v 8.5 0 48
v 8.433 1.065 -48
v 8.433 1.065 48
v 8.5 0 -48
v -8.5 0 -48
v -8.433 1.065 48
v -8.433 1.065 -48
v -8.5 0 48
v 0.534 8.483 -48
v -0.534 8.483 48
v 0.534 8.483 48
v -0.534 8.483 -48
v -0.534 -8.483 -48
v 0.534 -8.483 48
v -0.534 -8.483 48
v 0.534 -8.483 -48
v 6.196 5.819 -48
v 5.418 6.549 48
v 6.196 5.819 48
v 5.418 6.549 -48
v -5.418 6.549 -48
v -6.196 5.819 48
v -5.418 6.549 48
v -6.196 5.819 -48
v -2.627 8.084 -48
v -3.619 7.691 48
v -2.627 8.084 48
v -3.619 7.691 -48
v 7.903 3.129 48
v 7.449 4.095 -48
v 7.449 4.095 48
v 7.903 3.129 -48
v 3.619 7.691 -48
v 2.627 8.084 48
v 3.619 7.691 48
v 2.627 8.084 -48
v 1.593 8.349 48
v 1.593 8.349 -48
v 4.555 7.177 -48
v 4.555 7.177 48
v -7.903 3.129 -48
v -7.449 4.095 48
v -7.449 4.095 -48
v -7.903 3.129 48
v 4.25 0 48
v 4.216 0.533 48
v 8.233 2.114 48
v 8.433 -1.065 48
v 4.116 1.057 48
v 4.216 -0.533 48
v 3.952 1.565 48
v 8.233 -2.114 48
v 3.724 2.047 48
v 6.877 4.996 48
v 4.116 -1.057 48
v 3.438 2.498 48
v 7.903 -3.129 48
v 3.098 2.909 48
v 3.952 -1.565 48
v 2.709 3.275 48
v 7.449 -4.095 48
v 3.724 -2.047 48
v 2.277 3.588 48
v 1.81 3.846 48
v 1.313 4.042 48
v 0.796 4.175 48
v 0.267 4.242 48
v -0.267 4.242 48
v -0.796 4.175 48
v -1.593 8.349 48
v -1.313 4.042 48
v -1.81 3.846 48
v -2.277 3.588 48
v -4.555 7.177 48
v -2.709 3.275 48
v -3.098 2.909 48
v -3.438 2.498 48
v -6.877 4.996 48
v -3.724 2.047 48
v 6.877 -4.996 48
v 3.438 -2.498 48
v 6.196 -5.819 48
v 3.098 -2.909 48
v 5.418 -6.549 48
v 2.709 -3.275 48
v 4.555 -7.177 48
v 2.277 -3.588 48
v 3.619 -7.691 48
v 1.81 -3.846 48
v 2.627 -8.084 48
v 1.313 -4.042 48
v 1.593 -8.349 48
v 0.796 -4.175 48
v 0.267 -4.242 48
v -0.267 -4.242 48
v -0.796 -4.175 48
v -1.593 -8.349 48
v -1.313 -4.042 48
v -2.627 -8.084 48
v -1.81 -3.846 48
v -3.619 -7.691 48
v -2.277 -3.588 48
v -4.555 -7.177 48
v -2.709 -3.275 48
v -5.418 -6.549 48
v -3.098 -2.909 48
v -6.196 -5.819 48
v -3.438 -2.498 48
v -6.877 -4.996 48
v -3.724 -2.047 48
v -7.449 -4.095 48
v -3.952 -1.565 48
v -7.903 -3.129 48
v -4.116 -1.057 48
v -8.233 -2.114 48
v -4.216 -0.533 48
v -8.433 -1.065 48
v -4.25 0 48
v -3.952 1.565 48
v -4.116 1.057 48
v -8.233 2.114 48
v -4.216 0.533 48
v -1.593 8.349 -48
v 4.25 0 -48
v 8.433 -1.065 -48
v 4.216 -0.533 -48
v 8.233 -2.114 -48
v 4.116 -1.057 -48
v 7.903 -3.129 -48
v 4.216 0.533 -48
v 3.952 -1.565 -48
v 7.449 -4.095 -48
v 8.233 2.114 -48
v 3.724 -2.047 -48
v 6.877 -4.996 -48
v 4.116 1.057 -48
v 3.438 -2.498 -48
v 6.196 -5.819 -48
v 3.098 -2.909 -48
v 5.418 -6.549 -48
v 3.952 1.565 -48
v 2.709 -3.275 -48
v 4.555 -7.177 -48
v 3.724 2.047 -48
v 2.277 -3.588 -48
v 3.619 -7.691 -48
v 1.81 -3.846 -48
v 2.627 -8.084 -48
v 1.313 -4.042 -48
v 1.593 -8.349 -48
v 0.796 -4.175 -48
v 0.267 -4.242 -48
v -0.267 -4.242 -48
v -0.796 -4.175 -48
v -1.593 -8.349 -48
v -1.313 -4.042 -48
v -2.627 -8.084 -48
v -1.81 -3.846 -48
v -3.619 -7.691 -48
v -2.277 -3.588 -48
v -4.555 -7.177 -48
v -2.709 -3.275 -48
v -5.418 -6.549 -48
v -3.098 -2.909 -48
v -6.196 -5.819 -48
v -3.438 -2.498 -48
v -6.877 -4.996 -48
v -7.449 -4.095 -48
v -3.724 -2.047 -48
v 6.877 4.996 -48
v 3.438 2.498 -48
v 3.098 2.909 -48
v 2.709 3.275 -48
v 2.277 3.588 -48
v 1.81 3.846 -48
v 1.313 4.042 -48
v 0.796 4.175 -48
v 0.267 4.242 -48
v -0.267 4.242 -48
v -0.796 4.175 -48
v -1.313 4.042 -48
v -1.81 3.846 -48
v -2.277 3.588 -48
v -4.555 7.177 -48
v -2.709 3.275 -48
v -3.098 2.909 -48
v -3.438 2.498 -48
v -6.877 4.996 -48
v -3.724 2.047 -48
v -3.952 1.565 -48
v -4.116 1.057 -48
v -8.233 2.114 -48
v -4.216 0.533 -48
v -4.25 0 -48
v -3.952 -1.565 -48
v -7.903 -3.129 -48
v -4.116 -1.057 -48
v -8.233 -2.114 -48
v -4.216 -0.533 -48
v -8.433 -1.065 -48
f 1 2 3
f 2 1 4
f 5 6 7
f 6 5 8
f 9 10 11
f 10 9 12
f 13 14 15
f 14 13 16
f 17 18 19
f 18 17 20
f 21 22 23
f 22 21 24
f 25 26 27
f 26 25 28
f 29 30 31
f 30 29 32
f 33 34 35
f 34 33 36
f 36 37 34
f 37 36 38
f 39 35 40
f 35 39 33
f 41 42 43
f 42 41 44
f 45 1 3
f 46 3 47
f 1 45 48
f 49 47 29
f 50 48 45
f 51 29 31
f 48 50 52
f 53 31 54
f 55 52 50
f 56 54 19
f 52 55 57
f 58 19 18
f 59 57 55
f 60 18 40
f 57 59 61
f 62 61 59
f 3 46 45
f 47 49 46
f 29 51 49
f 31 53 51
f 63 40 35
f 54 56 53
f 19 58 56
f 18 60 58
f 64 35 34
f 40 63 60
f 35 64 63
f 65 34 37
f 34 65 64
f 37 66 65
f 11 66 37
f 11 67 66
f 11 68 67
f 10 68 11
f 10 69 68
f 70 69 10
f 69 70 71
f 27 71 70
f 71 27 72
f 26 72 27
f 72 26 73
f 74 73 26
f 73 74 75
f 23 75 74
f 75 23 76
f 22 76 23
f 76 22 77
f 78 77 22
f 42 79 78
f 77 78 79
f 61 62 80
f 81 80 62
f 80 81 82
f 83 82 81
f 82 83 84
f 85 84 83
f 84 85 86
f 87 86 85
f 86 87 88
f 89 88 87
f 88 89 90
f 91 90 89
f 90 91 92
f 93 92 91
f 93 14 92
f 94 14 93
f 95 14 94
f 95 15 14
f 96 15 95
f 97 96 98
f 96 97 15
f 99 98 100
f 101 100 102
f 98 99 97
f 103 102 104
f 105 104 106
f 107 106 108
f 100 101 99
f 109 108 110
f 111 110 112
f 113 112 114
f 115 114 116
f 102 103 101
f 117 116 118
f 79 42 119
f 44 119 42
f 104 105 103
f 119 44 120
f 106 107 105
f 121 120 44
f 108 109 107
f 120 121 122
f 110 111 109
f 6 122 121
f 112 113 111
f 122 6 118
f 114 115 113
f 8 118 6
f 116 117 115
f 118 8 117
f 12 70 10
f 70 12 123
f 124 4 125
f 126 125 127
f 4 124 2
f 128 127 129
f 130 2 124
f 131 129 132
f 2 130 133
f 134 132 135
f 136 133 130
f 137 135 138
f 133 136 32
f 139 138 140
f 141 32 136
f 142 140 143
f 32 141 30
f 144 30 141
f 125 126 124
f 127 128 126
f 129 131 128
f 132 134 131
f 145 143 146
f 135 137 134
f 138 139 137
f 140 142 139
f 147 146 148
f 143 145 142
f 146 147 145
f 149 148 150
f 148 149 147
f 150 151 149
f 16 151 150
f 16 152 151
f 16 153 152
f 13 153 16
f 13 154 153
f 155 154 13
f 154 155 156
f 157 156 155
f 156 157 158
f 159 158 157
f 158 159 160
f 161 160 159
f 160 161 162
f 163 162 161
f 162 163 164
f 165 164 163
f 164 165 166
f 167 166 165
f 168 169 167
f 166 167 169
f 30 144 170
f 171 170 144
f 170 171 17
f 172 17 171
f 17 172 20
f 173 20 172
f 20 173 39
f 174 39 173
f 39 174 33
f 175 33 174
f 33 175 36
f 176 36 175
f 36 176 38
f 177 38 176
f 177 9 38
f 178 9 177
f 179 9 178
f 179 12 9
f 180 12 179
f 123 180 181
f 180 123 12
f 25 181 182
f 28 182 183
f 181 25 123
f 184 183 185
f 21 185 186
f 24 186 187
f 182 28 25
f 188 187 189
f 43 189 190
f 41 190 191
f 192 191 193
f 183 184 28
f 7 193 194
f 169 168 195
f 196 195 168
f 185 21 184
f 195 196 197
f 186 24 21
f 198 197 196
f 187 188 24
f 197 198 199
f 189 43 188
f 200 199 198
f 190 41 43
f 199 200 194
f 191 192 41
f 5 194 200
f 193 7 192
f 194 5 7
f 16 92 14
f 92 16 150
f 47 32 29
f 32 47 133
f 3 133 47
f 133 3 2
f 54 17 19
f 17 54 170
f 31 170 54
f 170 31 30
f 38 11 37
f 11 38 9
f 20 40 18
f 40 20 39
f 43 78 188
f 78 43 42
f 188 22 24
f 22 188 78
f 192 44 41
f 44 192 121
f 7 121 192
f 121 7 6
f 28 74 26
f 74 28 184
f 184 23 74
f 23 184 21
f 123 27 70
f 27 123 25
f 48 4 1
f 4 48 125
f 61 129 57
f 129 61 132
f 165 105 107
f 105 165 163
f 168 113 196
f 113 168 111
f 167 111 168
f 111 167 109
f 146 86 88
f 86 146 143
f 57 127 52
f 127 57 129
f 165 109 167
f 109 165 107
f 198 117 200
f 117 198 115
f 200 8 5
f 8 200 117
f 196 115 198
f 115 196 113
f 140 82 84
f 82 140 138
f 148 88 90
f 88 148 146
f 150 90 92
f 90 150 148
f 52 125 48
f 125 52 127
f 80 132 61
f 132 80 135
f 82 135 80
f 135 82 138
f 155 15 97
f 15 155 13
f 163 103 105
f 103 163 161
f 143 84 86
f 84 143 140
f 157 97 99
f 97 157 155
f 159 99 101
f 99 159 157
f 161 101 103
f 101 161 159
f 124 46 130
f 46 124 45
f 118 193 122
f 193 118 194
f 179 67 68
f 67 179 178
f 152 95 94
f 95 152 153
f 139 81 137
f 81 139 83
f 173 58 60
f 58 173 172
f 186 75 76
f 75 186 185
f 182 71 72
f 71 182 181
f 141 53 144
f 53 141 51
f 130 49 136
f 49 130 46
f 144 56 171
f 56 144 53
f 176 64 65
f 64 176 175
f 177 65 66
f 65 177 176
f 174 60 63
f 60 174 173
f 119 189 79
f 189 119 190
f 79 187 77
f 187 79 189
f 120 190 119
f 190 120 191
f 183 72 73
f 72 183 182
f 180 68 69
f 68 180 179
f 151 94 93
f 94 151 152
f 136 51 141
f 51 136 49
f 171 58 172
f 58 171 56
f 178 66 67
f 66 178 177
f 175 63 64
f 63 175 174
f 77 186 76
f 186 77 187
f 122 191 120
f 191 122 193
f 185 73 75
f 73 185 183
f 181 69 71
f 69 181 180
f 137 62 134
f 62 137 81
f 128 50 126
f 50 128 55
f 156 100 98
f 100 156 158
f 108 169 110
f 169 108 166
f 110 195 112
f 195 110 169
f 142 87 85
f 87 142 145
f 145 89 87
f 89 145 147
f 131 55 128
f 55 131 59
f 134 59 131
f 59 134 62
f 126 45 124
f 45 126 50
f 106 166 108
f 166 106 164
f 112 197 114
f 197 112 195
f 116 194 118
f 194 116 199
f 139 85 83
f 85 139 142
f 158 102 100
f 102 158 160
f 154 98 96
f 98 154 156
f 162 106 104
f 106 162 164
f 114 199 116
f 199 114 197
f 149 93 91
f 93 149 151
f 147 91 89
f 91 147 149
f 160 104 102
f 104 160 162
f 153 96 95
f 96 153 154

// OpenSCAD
$fn = 50;


difference() {
	union() {
		translate(v = [0, 0, -48.0000000000]) {
			cylinder(h = 96, r = 8.5000000000);
		}
	}
	union() {
		translate(v = [0, 0, -100.0000000000]) {
			cylinder(h = 200, r = 4.2500000000);
		}
	}
}
